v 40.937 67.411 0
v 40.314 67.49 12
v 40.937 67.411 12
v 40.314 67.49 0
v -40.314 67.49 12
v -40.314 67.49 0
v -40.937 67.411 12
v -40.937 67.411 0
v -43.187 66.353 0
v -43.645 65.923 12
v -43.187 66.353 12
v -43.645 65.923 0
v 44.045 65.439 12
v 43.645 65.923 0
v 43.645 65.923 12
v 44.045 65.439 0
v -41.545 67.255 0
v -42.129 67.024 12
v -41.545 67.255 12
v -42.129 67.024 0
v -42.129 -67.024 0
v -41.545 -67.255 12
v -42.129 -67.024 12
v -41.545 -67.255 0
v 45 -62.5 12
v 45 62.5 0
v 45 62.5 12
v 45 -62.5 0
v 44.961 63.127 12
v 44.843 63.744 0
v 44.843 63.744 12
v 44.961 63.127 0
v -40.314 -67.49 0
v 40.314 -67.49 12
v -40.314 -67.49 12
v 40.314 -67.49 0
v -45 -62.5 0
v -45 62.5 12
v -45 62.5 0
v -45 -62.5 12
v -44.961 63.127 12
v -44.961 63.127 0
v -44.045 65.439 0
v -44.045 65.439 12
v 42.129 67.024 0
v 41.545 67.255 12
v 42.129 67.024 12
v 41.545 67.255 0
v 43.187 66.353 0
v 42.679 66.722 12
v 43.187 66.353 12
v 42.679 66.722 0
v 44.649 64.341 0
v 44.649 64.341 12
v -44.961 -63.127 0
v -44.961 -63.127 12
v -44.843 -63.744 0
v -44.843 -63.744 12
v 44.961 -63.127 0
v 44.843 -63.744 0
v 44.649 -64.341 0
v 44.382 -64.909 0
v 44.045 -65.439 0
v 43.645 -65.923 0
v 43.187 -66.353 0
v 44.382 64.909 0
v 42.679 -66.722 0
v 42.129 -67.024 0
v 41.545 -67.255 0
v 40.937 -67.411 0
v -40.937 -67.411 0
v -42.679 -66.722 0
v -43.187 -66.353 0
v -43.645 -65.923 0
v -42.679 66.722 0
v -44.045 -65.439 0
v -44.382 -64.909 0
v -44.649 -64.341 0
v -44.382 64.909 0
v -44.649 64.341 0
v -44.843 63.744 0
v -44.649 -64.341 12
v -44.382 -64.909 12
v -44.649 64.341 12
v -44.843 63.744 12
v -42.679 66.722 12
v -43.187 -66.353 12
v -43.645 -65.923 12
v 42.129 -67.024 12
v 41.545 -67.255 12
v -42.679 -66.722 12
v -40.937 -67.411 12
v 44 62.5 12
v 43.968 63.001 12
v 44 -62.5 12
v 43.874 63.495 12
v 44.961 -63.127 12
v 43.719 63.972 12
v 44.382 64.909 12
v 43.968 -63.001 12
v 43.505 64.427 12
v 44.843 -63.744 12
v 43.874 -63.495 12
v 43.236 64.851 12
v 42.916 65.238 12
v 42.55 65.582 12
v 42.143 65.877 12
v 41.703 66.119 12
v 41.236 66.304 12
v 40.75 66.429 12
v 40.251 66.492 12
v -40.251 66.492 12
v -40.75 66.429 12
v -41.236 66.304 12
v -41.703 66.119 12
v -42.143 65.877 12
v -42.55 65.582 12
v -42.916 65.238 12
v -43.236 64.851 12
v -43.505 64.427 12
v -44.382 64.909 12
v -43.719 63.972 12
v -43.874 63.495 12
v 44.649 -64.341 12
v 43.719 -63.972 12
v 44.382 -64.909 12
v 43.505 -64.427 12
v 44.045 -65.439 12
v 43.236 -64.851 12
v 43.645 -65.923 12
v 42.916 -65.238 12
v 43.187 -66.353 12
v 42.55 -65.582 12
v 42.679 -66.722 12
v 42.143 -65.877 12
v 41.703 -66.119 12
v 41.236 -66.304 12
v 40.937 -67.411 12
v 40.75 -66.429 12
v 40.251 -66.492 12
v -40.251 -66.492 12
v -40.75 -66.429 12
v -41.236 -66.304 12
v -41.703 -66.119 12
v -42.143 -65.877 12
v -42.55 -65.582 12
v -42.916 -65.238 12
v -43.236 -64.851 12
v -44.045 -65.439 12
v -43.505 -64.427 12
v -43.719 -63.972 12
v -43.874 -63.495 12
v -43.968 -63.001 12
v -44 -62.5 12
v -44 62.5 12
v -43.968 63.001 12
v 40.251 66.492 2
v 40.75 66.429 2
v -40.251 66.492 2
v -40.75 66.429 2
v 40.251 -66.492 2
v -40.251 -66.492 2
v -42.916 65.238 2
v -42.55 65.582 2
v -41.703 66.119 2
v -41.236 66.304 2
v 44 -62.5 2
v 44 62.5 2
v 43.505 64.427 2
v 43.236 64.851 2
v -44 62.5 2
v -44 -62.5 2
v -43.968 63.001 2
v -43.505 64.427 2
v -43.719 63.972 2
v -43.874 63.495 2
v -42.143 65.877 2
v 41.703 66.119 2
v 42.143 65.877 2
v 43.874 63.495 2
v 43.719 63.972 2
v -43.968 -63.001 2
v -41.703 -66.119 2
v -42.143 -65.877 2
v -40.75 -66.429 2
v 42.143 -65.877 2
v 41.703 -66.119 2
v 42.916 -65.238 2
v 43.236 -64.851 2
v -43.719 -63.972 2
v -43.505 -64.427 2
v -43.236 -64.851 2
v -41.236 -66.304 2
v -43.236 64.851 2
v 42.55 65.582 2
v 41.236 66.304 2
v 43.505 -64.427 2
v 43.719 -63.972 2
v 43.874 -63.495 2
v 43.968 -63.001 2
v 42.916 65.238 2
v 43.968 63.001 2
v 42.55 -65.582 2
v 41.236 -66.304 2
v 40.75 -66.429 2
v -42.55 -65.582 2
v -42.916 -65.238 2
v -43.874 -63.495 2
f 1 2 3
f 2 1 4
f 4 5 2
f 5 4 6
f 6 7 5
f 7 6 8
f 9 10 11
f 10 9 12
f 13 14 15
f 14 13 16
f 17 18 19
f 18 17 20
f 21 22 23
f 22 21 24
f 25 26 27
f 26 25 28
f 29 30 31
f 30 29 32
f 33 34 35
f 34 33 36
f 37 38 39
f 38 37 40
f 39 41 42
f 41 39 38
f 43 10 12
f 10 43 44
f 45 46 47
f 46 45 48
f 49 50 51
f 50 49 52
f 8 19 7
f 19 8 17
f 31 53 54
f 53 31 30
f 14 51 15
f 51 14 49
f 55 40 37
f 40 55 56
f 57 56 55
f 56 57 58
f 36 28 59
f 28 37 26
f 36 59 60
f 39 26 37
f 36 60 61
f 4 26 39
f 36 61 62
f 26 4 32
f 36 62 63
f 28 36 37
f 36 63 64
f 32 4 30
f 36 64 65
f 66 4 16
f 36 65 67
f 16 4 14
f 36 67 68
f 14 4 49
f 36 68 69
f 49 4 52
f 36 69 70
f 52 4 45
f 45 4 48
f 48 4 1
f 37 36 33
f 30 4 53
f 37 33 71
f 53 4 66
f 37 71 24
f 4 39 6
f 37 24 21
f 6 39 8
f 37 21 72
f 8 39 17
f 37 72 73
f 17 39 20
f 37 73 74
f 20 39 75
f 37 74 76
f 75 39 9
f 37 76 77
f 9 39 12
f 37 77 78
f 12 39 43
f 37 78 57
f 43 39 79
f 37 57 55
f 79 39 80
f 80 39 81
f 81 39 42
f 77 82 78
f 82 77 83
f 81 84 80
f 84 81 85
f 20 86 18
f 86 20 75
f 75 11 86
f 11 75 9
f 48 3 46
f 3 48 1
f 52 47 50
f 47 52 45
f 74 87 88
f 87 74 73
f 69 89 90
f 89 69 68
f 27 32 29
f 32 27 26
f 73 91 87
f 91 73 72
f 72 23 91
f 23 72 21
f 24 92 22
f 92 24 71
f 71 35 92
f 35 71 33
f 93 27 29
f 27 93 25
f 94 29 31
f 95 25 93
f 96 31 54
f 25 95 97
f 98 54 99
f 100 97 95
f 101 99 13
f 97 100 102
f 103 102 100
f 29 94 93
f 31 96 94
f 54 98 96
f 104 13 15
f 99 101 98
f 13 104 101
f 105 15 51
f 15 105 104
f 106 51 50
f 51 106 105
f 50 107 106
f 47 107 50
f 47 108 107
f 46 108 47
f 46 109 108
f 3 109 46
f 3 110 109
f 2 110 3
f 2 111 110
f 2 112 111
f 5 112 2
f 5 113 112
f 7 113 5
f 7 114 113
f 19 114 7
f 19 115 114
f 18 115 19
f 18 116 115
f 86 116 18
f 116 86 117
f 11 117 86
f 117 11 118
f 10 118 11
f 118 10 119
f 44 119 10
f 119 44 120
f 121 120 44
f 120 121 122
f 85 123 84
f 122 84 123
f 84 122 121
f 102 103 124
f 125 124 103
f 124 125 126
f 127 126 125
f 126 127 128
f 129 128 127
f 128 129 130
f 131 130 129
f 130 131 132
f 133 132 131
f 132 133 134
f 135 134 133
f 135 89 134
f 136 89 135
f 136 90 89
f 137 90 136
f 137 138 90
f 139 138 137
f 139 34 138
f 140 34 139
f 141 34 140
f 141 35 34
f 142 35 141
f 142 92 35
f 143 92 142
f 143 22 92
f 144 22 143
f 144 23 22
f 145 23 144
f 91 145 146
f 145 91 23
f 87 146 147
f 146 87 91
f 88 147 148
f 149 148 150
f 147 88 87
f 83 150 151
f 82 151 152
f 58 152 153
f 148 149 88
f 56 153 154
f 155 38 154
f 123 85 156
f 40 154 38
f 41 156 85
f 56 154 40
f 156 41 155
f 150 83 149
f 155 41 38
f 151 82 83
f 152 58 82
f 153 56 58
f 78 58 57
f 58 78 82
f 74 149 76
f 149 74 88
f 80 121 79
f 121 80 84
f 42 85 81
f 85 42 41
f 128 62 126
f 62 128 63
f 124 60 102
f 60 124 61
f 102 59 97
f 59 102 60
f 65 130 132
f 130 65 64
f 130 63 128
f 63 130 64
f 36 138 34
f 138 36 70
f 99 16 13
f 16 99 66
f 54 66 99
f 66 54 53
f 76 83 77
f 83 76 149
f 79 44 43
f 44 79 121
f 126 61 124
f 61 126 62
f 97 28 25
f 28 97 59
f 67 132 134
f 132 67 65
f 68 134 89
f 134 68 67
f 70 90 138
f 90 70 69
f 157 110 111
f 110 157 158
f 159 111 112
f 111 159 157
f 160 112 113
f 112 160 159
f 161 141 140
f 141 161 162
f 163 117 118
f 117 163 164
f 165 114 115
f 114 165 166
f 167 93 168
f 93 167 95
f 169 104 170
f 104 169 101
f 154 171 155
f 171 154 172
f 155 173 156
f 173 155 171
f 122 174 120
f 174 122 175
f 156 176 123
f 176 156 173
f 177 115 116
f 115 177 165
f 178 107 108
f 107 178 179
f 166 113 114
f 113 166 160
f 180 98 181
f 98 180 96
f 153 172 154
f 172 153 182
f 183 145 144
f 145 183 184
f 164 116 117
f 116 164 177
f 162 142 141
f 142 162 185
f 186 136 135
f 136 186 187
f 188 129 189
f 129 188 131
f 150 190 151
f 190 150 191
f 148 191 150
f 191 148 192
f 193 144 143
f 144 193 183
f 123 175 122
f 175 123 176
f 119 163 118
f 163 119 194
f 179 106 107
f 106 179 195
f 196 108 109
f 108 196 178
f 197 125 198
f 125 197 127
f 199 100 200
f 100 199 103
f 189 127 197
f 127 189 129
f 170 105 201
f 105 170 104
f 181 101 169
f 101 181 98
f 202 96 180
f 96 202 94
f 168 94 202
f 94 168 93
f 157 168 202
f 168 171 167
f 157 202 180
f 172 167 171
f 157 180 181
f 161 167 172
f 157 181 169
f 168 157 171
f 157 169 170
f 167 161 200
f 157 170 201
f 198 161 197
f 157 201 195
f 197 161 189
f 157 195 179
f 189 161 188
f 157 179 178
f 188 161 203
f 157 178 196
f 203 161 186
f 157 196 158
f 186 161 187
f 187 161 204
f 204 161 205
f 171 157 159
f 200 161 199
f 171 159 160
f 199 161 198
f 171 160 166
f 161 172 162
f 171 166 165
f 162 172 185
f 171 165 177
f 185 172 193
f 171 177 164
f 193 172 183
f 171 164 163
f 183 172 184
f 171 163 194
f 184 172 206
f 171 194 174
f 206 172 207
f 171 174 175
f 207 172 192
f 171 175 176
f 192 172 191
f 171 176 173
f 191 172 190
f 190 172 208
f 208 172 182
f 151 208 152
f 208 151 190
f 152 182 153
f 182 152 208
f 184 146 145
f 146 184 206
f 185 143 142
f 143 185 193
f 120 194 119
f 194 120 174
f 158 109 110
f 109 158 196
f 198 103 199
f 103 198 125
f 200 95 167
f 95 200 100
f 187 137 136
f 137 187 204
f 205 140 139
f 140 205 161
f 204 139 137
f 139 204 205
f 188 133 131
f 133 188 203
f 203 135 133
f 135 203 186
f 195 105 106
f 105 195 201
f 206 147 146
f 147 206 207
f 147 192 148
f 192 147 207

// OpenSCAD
$fn = 50;


difference() {
	union() {
		hull() {
			translate(v = [-40.0000000000, 62.5000000000, 0]) {
				cylinder(h = 12, r = 5);
			}
			translate(v = [40.0000000000, 62.5000000000, 0]) {
				cylinder(h = 12, r = 5);
			}
			translate(v = [-40.0000000000, -62.5000000000, 0]) {
				cylinder(h = 12, r = 5);
			}
			translate(v = [40.0000000000, -62.5000000000, 0]) {
				cylinder(h = 12, r = 5);
			}
		}
	}
	union() {
		translate(v = [0, 0, 2]) {
			hull() {
				translate(v = [-40.0000000000, 62.5000000000, 0]) {
					cylinder(h = 10, r = 4);
				}
				translate(v = [40.0000000000, 62.5000000000, 0]) {
					cylinder(h = 10, r = 4);
				}
				translate(v = [-40.0000000000, -62.5000000000, 0]) {
					cylinder(h = 10, r = 4);
				}
				translate(v = [40.0000000000, -62.5000000000, 0]) {
					cylinder(h = 10, r = 4);
				}
			}
		}
	}
}
